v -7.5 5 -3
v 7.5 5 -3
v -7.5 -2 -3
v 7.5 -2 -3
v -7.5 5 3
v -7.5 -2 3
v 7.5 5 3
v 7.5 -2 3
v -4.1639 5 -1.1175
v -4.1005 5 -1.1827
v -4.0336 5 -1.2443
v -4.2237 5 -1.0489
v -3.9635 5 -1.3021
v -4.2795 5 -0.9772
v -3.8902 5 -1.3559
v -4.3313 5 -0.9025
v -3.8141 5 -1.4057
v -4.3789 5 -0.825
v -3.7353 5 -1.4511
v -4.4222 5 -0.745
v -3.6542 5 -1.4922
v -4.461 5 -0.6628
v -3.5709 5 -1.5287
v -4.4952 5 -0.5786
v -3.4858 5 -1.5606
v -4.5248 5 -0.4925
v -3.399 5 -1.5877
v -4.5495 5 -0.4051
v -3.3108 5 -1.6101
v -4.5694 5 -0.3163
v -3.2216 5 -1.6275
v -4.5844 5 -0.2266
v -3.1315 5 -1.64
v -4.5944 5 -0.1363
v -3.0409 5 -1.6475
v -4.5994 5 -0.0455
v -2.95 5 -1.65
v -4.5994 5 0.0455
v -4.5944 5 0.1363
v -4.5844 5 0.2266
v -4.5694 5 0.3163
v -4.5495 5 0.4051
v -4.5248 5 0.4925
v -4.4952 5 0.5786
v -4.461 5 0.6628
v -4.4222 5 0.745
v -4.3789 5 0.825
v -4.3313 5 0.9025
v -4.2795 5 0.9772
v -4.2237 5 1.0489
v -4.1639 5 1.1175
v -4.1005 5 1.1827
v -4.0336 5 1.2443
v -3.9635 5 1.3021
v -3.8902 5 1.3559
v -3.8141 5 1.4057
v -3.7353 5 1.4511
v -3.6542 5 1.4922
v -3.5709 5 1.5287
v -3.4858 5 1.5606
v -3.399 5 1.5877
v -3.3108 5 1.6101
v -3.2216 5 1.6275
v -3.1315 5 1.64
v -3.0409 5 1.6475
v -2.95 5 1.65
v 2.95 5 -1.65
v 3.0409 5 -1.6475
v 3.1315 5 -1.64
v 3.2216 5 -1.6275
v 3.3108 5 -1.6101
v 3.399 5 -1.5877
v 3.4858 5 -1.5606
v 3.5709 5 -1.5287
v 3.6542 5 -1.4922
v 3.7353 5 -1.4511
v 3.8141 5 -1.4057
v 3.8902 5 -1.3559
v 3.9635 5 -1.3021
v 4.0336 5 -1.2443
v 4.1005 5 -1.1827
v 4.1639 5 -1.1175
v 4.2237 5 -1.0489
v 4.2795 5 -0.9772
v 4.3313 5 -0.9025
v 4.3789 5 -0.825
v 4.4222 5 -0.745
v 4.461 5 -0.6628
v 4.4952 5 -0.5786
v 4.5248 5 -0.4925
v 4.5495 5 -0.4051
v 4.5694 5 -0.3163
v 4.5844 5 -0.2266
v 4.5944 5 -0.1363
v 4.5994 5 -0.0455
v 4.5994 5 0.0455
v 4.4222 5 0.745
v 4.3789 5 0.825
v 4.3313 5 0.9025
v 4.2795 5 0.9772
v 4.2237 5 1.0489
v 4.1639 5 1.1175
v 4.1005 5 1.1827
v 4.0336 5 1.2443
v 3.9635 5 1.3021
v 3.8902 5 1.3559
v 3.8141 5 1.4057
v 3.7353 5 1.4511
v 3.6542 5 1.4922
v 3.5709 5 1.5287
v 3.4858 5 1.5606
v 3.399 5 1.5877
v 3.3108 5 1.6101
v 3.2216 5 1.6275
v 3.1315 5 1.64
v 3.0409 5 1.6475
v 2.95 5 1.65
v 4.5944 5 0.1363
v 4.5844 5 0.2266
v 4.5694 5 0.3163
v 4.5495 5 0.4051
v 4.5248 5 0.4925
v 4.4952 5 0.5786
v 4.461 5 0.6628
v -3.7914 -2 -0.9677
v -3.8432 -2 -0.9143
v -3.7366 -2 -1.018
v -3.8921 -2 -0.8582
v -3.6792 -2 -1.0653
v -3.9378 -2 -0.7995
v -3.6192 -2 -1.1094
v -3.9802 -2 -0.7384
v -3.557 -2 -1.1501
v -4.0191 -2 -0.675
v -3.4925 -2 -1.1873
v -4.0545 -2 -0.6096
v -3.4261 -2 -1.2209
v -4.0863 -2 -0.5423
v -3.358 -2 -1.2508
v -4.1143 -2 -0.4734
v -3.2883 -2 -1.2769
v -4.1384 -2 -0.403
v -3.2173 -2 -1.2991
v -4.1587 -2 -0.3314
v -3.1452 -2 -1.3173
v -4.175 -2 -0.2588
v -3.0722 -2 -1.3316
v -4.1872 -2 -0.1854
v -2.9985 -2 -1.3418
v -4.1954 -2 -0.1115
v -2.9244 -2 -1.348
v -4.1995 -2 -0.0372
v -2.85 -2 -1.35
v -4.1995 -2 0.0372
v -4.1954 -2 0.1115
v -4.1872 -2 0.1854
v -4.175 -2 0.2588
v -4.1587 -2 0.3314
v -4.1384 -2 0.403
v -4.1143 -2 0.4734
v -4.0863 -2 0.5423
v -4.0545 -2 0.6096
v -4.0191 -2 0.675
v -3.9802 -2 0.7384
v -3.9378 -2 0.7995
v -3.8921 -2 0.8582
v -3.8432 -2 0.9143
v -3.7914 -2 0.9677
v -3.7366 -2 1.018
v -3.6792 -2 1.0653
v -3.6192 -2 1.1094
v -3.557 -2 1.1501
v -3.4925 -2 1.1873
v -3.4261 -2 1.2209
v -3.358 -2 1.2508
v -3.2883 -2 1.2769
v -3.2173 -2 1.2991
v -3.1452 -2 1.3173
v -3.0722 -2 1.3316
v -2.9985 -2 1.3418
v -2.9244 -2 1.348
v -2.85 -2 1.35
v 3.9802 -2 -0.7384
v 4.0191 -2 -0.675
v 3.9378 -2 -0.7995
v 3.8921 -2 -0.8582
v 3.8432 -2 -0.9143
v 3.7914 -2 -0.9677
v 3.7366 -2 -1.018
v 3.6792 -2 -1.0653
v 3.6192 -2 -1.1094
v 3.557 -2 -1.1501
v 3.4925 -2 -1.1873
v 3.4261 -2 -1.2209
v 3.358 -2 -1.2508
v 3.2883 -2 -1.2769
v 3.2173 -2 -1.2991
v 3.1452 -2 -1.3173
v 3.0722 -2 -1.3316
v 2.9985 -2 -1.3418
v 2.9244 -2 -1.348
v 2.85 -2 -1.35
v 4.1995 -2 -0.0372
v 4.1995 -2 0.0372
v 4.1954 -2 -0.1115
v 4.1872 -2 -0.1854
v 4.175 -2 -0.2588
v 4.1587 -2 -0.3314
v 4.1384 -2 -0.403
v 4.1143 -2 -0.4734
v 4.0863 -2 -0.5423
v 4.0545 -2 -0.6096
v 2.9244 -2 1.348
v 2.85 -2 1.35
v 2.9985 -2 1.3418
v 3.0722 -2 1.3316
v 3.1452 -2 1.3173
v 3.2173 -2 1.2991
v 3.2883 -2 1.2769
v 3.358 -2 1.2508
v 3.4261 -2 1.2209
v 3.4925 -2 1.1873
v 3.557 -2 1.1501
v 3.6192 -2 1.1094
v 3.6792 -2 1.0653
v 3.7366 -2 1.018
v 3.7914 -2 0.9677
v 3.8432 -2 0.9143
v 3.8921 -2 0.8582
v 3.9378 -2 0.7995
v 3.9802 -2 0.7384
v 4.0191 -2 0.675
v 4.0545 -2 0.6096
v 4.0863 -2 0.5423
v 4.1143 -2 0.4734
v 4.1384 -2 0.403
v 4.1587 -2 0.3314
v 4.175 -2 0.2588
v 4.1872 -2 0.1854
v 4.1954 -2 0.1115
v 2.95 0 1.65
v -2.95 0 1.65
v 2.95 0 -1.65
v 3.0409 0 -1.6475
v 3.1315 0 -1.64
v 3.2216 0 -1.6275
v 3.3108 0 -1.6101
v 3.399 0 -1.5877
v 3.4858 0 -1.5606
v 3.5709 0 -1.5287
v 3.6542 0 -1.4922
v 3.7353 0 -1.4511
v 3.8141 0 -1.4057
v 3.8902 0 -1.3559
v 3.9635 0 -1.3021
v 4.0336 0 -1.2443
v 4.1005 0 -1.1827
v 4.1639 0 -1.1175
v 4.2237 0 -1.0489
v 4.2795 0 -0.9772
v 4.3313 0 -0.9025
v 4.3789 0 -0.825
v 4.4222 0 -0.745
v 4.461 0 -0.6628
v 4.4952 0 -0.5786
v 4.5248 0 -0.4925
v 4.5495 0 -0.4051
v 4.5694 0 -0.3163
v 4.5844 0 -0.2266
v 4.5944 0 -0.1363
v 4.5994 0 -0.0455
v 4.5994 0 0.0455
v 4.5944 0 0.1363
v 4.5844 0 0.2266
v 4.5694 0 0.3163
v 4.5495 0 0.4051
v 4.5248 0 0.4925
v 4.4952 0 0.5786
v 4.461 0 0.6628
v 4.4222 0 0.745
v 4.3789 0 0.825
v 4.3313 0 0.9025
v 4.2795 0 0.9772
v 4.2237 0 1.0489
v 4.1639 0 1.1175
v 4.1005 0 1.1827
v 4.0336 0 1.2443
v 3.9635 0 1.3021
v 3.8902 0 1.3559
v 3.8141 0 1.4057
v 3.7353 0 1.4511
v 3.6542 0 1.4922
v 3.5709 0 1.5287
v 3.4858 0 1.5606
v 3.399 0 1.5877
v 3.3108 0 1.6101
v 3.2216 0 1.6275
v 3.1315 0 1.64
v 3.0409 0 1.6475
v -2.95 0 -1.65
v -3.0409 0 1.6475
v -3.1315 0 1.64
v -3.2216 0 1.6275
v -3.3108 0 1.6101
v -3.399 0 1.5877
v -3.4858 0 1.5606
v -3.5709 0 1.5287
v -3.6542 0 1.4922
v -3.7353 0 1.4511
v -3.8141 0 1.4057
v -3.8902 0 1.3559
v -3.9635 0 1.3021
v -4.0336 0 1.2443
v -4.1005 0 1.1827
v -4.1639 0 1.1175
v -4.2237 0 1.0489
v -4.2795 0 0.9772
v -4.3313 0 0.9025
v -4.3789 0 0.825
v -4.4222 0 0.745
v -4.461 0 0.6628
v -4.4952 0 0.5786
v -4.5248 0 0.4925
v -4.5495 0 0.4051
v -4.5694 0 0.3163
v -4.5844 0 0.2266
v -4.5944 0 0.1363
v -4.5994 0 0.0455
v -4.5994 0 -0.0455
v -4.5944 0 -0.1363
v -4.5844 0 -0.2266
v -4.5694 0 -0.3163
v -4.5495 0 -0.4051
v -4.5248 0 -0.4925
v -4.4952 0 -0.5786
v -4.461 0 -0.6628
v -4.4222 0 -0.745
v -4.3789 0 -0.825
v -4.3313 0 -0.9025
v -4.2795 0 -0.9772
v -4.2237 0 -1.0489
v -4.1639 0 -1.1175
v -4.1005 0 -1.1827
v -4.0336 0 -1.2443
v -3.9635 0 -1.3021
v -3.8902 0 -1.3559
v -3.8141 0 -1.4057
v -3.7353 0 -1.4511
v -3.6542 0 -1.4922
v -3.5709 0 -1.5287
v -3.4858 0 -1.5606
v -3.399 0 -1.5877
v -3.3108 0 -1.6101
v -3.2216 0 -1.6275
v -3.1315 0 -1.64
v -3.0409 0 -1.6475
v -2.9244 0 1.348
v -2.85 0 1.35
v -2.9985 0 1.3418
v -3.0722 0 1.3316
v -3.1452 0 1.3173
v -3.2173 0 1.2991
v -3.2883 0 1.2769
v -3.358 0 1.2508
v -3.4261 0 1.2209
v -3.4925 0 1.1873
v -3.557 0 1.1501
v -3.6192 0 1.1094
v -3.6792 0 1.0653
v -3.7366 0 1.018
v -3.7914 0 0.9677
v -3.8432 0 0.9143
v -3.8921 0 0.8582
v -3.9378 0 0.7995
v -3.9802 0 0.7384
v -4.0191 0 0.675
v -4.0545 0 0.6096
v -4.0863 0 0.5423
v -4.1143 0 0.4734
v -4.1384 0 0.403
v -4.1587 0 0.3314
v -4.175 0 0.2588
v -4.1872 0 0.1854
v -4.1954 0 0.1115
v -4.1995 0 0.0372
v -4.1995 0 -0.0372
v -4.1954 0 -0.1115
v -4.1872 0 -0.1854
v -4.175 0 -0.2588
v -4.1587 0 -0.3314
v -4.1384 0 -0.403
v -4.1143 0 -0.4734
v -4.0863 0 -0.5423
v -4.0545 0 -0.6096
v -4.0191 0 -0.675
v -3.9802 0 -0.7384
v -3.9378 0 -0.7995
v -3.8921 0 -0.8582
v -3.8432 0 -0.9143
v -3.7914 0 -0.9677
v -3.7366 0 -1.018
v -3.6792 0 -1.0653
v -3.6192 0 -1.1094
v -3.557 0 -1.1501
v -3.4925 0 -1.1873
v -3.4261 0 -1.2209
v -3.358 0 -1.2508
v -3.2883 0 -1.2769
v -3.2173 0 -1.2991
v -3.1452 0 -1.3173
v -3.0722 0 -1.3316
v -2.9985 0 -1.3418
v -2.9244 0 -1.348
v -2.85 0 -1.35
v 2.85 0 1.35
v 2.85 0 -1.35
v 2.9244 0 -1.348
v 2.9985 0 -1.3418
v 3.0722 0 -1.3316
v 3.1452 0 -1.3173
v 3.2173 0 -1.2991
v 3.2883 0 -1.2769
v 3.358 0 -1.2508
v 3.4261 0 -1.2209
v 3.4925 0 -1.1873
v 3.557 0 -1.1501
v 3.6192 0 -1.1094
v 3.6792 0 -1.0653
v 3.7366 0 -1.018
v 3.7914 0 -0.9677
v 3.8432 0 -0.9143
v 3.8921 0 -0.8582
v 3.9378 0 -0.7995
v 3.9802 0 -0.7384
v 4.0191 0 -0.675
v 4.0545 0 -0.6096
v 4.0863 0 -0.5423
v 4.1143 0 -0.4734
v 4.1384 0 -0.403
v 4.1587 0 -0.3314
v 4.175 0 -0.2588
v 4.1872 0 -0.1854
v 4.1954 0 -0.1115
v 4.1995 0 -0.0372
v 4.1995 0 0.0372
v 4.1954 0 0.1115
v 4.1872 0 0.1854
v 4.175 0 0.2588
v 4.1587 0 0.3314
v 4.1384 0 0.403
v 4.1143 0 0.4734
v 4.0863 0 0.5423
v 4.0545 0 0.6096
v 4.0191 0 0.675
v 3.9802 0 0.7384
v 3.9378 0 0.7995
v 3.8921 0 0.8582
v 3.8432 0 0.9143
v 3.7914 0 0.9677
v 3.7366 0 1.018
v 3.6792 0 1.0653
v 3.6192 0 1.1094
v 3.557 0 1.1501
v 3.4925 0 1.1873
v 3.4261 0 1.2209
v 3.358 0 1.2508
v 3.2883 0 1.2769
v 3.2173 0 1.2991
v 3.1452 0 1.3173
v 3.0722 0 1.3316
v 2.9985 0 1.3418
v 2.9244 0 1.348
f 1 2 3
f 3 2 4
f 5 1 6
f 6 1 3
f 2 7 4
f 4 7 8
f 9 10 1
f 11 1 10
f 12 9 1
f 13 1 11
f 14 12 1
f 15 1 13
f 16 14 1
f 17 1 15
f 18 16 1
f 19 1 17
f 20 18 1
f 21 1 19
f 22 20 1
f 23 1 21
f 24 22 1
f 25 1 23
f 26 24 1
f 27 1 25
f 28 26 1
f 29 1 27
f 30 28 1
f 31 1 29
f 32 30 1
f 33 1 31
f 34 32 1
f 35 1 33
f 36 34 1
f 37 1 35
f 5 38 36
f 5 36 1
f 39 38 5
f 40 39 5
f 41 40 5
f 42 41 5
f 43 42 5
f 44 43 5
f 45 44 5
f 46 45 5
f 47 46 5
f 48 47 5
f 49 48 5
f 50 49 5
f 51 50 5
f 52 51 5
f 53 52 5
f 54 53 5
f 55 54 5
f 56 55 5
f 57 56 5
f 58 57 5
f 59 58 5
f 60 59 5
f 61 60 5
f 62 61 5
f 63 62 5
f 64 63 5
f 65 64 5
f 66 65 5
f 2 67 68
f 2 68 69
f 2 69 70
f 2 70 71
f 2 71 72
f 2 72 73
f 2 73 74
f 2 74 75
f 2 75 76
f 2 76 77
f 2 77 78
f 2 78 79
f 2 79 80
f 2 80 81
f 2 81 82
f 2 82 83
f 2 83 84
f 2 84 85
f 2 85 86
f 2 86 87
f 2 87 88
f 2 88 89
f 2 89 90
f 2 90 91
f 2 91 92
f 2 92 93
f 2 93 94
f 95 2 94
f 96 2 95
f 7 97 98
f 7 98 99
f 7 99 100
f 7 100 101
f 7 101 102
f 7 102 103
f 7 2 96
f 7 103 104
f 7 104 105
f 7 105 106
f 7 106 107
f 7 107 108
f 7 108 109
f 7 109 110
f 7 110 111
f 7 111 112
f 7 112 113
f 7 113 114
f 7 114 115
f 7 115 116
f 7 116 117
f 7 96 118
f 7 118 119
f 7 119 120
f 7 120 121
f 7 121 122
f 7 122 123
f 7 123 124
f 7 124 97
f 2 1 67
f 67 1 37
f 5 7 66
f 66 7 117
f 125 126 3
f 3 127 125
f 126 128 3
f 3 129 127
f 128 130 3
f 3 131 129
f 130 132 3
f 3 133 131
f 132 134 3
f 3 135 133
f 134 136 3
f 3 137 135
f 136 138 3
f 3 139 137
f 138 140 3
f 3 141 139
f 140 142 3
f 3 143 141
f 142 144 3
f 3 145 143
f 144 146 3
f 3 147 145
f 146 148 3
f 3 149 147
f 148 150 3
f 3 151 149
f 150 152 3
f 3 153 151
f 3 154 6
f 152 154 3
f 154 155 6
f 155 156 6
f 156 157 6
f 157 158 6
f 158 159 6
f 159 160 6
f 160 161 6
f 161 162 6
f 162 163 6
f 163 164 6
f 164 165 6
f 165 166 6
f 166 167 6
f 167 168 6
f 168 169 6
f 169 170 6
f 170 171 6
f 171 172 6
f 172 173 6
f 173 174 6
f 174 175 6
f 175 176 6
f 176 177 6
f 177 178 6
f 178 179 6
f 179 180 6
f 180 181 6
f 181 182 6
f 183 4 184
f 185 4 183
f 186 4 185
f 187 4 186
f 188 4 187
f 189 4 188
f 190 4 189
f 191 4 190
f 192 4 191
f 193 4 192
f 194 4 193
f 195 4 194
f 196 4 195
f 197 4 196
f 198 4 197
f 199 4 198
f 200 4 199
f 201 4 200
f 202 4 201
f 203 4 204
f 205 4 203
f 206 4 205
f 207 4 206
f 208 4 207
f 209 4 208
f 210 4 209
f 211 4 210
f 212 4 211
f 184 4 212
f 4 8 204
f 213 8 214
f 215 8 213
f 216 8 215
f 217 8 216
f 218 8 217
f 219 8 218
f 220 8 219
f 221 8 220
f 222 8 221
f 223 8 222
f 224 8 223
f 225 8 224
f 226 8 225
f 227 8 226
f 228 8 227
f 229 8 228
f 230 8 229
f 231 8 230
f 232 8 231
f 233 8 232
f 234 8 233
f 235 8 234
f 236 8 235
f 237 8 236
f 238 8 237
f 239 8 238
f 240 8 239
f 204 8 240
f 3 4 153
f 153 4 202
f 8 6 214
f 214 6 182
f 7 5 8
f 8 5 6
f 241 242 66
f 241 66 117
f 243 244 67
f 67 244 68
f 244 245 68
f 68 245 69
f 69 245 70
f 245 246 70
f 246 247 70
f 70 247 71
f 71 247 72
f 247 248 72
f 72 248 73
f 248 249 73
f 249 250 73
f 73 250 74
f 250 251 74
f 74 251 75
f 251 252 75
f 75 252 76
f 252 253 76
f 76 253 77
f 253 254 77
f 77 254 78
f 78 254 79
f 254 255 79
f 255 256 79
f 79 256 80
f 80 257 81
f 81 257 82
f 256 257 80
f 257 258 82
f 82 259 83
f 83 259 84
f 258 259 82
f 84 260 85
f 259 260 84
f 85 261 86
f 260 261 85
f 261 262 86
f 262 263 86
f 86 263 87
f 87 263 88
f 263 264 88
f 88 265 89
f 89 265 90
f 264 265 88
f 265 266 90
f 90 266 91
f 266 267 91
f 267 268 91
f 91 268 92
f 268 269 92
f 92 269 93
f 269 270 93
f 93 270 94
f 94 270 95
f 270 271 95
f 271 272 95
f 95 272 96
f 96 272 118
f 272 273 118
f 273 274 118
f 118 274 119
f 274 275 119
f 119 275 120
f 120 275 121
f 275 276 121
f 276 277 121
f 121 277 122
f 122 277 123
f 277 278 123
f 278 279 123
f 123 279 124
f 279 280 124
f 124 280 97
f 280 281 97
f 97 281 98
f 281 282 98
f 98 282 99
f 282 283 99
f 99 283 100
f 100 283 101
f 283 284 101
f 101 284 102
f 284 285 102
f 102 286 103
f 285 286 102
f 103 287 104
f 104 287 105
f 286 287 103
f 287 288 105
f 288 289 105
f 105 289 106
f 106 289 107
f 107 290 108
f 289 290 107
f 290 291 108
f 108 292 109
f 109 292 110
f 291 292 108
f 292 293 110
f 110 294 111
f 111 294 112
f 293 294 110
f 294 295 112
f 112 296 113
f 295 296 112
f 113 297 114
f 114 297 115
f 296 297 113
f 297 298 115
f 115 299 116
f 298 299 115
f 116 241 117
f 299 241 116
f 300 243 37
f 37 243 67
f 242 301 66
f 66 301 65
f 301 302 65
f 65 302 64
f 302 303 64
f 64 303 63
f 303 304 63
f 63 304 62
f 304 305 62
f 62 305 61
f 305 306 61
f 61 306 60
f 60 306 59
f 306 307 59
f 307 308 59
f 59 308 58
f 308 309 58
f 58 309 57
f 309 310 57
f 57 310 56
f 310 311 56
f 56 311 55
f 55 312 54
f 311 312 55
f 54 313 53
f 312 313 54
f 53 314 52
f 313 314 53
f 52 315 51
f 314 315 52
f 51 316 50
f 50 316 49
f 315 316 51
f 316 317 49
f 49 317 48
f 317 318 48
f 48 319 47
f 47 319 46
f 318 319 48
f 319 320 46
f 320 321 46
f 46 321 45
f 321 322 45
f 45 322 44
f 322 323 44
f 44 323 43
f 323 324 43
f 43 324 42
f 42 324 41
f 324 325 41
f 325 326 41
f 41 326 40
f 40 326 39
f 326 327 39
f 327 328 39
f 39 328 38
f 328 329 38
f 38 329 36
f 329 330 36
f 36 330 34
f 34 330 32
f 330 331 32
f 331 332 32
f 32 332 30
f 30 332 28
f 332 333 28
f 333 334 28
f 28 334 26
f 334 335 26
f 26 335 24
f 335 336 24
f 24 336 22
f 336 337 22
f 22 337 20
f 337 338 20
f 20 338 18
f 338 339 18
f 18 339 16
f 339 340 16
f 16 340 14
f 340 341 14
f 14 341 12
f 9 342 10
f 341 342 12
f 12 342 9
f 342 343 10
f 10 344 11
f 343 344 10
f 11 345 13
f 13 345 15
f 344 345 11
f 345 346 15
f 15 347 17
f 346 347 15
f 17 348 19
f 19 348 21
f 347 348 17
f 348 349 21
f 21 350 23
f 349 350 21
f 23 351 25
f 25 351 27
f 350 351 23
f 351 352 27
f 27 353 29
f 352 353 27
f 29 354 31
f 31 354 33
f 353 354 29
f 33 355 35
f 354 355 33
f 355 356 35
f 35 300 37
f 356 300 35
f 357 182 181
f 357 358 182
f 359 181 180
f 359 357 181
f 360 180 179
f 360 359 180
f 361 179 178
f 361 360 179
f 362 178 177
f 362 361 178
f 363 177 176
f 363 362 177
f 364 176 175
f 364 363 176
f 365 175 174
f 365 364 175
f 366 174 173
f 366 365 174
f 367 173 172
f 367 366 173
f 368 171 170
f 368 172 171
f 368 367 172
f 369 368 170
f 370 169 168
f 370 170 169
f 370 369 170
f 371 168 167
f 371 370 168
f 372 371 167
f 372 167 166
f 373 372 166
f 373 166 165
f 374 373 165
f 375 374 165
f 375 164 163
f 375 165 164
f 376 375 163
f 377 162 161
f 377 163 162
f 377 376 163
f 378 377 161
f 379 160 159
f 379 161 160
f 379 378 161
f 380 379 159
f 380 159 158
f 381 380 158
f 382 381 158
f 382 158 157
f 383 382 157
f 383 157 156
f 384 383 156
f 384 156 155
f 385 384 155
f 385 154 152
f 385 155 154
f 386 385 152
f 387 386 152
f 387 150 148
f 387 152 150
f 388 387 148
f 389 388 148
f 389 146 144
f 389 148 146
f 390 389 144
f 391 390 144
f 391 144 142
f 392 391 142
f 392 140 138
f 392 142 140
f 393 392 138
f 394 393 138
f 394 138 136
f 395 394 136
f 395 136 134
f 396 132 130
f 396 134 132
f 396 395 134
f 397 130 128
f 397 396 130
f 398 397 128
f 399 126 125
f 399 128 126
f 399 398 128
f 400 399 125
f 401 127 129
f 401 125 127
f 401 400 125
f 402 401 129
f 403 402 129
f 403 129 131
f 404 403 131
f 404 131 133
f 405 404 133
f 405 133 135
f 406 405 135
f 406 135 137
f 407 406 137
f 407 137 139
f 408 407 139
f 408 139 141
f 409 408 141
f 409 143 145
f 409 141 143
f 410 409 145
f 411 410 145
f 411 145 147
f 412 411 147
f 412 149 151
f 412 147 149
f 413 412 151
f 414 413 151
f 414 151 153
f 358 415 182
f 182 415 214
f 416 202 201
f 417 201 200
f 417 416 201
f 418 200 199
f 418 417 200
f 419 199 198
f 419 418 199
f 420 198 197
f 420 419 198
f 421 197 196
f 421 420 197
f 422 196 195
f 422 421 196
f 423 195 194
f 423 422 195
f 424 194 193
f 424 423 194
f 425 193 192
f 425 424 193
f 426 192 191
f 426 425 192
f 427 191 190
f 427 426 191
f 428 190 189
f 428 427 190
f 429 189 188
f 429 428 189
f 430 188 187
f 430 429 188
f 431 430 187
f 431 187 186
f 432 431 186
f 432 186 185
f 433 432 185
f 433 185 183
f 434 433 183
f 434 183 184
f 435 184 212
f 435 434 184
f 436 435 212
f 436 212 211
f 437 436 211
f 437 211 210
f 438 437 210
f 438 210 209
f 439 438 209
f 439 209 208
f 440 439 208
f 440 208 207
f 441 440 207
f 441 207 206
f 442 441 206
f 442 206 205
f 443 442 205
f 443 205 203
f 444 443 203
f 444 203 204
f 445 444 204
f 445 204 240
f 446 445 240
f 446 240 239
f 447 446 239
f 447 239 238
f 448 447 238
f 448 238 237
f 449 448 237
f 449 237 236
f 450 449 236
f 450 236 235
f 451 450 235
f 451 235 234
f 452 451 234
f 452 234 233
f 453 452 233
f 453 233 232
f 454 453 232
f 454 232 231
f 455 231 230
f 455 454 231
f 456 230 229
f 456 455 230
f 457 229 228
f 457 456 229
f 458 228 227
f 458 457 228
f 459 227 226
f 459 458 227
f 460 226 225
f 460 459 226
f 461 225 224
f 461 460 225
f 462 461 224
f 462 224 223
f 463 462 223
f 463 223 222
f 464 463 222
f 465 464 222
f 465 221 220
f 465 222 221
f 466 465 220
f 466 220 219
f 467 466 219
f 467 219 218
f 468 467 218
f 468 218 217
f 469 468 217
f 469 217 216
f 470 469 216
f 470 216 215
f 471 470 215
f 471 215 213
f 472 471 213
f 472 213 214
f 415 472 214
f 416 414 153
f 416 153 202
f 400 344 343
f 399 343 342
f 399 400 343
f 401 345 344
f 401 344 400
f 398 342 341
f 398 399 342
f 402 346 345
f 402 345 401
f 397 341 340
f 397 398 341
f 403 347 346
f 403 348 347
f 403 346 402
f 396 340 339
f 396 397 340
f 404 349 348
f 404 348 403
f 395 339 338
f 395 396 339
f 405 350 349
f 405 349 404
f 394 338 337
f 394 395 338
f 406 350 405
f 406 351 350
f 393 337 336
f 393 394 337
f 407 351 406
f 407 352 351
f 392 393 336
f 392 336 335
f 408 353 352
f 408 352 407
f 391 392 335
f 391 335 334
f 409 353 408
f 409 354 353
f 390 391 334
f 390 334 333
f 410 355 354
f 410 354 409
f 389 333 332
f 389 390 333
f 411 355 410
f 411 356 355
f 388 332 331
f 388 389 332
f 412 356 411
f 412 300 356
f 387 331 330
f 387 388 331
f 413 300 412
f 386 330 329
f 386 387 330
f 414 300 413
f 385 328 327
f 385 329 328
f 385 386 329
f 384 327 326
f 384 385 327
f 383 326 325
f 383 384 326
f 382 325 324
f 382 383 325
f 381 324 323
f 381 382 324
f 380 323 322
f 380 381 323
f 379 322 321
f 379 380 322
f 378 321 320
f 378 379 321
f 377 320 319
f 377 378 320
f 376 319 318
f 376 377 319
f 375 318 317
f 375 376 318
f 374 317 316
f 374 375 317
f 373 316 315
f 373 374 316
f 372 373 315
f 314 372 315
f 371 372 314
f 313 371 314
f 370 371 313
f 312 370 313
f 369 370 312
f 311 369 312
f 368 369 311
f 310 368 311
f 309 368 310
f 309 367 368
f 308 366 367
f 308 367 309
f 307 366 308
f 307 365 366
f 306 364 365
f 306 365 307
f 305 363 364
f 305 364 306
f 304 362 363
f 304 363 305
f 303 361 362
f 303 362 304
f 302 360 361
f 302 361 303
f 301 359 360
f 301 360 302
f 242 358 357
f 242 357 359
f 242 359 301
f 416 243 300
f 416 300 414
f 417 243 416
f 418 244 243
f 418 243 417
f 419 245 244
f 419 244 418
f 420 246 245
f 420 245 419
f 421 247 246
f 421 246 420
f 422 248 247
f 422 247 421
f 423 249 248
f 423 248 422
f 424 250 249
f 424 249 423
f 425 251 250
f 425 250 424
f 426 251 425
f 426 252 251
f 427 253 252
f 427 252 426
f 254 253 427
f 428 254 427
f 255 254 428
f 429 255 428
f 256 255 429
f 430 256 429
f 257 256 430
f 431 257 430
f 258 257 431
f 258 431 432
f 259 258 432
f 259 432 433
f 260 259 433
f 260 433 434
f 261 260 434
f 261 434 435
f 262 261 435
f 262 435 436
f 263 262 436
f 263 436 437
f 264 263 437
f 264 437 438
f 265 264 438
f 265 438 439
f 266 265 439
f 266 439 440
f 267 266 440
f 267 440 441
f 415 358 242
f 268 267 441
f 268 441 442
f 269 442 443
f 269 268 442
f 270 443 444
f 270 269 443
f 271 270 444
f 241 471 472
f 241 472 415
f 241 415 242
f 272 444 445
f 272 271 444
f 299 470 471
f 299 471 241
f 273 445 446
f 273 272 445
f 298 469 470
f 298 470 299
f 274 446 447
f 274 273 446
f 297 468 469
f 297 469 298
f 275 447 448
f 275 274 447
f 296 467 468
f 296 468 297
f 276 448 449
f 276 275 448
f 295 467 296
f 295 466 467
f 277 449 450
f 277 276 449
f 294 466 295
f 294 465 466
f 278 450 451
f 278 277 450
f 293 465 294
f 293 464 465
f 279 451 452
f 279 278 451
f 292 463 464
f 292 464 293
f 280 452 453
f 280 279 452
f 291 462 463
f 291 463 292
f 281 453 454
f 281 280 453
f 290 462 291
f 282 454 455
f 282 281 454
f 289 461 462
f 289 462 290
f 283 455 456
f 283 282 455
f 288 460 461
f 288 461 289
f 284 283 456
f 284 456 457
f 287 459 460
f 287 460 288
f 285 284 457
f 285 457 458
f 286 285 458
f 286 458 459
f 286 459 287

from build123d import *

# Parameters (mm, degrees)
SKETCH002_W     = 15
SKETCH002_H     = 6
PAD_DEPTH       = 2
PAD_DEPTH_BACK  = 5
POCKET_DEPTH    = 5.001
POCKET001_DEPTH = 2.001


with BuildPart() as part:
    # Sketch002 → Pad (new body, two sides)
    with BuildSketch(Plane.XZ) as pad_sk:
        Rectangle(SKETCH002_W, SKETCH002_H)
    extrude(amount=PAD_DEPTH)
    extrude(pad_sk.sketch, amount=-PAD_DEPTH_BACK)

    # Sketch → Pocket (cut, through all)
    with BuildSketch(Plane.XZ):
        with BuildLine():
            ThreePointArc((-2.95, 1.65), (-4.6, 0), (-2.95, -1.65))
            Line((-2.95, -1.65), (2.95, -1.65))
            ThreePointArc((2.95, -1.65), (4.6, 0), (2.95, 1.65))
            Line((-2.95, 1.65), (2.95, 1.65))
        make_face()
    extrude(amount=-POCKET_DEPTH, mode=Mode.SUBTRACT)

    # Sketch001 → Pocket001 (cut, through all)
    with BuildSketch(Plane.XZ):
        with BuildLine():
            ThreePointArc((-2.85, 1.35), (-4.2, 0), (-2.85, -1.35))
            Line((-2.85, -1.35), (2.85, -1.35))
            ThreePointArc((2.85, -1.35), (4.2, 0), (2.85, 1.35))
            Line((-2.85, 1.35), (2.85, 1.35))
        make_face()
    extrude(amount=POCKET001_DEPTH, mode=Mode.SUBTRACT)


solid = part.part
